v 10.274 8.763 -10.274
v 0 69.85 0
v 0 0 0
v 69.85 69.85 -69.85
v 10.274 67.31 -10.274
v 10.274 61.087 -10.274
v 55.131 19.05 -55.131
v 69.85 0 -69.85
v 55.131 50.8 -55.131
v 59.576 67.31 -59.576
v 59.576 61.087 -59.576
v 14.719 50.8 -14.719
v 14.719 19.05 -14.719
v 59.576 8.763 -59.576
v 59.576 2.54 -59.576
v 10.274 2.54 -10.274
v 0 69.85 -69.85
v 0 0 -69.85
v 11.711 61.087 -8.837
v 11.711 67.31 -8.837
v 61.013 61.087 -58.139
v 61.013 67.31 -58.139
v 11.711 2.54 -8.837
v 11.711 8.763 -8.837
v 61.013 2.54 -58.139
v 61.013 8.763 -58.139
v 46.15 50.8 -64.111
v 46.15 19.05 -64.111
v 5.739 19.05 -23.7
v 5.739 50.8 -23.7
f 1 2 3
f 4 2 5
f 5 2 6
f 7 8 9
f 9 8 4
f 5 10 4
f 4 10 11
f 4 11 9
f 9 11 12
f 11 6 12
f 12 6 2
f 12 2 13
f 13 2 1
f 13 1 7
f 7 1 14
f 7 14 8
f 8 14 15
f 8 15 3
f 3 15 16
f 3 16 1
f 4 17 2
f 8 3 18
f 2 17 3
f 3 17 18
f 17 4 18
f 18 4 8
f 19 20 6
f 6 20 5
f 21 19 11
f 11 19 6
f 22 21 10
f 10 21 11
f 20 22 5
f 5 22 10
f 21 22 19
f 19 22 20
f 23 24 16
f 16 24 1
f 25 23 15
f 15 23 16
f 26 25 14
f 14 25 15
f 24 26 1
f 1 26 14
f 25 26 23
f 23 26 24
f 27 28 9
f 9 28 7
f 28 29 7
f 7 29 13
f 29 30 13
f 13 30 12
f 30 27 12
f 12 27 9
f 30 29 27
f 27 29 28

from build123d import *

# Parameters (mm, degrees)
SKETCH1_W           = 69.85
SKETCH1_H           = 69.85
BOSS_EXTRUDE1_DEPTH = 69.85
CUT_EXTRUDE2_DEPTH  = 100
SKETCH3_W           = 69.723
SKETCH3_H           = 6.223
BOSS_EXTRUDE2_DEPTH = 2.032
SKETCH4_W           = 57.15
SKETCH4_H           = 31.75
CUT_EXTRUDE3_DEPTH  = 12.7


with BuildPart() as part:
    # Sketch1 → Boss-Extrude1 (new body)
    with BuildSketch(Plane(origin=(0, 0, 0), x_dir=(1, 0, 0), z_dir=(0, 1, 0))):
        with Locations((34.925, 34.925)):
            Rectangle(SKETCH1_W, SKETCH1_H)
    extrude(amount=BOSS_EXTRUDE1_DEPTH)

    # Sketch2 → Cut-Extrude2 (cut)
    with BuildSketch(Plane(origin=(0, 0, 0), x_dir=(0.707106781, 0, -0.707106781), z_dir=(0.707106781, 0, 0.707106781))):
        Polygon((98.782817332, 69.85), (98.782817332, 0), (49.391408666, 0), (0, 0), (0, 69.85), (49.391408666, 69.85), align=None)
    extrude(amount=CUT_EXTRUDE2_DEPTH, mode=Mode.SUBTRACT)

    # Sketch3 → Boss-Extrude2 (add)
    with BuildSketch(Plane(origin=(0, 0, 0), x_dir=(0.707106781, 0, -0.707106781), z_dir=(0.707106781, 0, 0.707106781))):
        with Locations((49.391408666, 5.6515)):
            Rectangle(SKETCH3_W, SKETCH3_H)
        with Locations((49.391408666, 64.1985)):
            Rectangle(SKETCH3_W, SKETCH3_H)
    extrude(amount=BOSS_EXTRUDE2_DEPTH)

    # Sketch4 → Cut-Extrude3 (cut)
    with BuildSketch(Plane(origin=(0, 0, 0), x_dir=(0.707106781, 0, -0.707106781), z_dir=(0.707106781, 0, 0.707106781))):
        with Locations((49.391408666, 34.925)):
            Rectangle(SKETCH4_W, SKETCH4_H)
    extrude(amount=-CUT_EXTRUDE3_DEPTH, mode=Mode.SUBTRACT)


solid = part.part
